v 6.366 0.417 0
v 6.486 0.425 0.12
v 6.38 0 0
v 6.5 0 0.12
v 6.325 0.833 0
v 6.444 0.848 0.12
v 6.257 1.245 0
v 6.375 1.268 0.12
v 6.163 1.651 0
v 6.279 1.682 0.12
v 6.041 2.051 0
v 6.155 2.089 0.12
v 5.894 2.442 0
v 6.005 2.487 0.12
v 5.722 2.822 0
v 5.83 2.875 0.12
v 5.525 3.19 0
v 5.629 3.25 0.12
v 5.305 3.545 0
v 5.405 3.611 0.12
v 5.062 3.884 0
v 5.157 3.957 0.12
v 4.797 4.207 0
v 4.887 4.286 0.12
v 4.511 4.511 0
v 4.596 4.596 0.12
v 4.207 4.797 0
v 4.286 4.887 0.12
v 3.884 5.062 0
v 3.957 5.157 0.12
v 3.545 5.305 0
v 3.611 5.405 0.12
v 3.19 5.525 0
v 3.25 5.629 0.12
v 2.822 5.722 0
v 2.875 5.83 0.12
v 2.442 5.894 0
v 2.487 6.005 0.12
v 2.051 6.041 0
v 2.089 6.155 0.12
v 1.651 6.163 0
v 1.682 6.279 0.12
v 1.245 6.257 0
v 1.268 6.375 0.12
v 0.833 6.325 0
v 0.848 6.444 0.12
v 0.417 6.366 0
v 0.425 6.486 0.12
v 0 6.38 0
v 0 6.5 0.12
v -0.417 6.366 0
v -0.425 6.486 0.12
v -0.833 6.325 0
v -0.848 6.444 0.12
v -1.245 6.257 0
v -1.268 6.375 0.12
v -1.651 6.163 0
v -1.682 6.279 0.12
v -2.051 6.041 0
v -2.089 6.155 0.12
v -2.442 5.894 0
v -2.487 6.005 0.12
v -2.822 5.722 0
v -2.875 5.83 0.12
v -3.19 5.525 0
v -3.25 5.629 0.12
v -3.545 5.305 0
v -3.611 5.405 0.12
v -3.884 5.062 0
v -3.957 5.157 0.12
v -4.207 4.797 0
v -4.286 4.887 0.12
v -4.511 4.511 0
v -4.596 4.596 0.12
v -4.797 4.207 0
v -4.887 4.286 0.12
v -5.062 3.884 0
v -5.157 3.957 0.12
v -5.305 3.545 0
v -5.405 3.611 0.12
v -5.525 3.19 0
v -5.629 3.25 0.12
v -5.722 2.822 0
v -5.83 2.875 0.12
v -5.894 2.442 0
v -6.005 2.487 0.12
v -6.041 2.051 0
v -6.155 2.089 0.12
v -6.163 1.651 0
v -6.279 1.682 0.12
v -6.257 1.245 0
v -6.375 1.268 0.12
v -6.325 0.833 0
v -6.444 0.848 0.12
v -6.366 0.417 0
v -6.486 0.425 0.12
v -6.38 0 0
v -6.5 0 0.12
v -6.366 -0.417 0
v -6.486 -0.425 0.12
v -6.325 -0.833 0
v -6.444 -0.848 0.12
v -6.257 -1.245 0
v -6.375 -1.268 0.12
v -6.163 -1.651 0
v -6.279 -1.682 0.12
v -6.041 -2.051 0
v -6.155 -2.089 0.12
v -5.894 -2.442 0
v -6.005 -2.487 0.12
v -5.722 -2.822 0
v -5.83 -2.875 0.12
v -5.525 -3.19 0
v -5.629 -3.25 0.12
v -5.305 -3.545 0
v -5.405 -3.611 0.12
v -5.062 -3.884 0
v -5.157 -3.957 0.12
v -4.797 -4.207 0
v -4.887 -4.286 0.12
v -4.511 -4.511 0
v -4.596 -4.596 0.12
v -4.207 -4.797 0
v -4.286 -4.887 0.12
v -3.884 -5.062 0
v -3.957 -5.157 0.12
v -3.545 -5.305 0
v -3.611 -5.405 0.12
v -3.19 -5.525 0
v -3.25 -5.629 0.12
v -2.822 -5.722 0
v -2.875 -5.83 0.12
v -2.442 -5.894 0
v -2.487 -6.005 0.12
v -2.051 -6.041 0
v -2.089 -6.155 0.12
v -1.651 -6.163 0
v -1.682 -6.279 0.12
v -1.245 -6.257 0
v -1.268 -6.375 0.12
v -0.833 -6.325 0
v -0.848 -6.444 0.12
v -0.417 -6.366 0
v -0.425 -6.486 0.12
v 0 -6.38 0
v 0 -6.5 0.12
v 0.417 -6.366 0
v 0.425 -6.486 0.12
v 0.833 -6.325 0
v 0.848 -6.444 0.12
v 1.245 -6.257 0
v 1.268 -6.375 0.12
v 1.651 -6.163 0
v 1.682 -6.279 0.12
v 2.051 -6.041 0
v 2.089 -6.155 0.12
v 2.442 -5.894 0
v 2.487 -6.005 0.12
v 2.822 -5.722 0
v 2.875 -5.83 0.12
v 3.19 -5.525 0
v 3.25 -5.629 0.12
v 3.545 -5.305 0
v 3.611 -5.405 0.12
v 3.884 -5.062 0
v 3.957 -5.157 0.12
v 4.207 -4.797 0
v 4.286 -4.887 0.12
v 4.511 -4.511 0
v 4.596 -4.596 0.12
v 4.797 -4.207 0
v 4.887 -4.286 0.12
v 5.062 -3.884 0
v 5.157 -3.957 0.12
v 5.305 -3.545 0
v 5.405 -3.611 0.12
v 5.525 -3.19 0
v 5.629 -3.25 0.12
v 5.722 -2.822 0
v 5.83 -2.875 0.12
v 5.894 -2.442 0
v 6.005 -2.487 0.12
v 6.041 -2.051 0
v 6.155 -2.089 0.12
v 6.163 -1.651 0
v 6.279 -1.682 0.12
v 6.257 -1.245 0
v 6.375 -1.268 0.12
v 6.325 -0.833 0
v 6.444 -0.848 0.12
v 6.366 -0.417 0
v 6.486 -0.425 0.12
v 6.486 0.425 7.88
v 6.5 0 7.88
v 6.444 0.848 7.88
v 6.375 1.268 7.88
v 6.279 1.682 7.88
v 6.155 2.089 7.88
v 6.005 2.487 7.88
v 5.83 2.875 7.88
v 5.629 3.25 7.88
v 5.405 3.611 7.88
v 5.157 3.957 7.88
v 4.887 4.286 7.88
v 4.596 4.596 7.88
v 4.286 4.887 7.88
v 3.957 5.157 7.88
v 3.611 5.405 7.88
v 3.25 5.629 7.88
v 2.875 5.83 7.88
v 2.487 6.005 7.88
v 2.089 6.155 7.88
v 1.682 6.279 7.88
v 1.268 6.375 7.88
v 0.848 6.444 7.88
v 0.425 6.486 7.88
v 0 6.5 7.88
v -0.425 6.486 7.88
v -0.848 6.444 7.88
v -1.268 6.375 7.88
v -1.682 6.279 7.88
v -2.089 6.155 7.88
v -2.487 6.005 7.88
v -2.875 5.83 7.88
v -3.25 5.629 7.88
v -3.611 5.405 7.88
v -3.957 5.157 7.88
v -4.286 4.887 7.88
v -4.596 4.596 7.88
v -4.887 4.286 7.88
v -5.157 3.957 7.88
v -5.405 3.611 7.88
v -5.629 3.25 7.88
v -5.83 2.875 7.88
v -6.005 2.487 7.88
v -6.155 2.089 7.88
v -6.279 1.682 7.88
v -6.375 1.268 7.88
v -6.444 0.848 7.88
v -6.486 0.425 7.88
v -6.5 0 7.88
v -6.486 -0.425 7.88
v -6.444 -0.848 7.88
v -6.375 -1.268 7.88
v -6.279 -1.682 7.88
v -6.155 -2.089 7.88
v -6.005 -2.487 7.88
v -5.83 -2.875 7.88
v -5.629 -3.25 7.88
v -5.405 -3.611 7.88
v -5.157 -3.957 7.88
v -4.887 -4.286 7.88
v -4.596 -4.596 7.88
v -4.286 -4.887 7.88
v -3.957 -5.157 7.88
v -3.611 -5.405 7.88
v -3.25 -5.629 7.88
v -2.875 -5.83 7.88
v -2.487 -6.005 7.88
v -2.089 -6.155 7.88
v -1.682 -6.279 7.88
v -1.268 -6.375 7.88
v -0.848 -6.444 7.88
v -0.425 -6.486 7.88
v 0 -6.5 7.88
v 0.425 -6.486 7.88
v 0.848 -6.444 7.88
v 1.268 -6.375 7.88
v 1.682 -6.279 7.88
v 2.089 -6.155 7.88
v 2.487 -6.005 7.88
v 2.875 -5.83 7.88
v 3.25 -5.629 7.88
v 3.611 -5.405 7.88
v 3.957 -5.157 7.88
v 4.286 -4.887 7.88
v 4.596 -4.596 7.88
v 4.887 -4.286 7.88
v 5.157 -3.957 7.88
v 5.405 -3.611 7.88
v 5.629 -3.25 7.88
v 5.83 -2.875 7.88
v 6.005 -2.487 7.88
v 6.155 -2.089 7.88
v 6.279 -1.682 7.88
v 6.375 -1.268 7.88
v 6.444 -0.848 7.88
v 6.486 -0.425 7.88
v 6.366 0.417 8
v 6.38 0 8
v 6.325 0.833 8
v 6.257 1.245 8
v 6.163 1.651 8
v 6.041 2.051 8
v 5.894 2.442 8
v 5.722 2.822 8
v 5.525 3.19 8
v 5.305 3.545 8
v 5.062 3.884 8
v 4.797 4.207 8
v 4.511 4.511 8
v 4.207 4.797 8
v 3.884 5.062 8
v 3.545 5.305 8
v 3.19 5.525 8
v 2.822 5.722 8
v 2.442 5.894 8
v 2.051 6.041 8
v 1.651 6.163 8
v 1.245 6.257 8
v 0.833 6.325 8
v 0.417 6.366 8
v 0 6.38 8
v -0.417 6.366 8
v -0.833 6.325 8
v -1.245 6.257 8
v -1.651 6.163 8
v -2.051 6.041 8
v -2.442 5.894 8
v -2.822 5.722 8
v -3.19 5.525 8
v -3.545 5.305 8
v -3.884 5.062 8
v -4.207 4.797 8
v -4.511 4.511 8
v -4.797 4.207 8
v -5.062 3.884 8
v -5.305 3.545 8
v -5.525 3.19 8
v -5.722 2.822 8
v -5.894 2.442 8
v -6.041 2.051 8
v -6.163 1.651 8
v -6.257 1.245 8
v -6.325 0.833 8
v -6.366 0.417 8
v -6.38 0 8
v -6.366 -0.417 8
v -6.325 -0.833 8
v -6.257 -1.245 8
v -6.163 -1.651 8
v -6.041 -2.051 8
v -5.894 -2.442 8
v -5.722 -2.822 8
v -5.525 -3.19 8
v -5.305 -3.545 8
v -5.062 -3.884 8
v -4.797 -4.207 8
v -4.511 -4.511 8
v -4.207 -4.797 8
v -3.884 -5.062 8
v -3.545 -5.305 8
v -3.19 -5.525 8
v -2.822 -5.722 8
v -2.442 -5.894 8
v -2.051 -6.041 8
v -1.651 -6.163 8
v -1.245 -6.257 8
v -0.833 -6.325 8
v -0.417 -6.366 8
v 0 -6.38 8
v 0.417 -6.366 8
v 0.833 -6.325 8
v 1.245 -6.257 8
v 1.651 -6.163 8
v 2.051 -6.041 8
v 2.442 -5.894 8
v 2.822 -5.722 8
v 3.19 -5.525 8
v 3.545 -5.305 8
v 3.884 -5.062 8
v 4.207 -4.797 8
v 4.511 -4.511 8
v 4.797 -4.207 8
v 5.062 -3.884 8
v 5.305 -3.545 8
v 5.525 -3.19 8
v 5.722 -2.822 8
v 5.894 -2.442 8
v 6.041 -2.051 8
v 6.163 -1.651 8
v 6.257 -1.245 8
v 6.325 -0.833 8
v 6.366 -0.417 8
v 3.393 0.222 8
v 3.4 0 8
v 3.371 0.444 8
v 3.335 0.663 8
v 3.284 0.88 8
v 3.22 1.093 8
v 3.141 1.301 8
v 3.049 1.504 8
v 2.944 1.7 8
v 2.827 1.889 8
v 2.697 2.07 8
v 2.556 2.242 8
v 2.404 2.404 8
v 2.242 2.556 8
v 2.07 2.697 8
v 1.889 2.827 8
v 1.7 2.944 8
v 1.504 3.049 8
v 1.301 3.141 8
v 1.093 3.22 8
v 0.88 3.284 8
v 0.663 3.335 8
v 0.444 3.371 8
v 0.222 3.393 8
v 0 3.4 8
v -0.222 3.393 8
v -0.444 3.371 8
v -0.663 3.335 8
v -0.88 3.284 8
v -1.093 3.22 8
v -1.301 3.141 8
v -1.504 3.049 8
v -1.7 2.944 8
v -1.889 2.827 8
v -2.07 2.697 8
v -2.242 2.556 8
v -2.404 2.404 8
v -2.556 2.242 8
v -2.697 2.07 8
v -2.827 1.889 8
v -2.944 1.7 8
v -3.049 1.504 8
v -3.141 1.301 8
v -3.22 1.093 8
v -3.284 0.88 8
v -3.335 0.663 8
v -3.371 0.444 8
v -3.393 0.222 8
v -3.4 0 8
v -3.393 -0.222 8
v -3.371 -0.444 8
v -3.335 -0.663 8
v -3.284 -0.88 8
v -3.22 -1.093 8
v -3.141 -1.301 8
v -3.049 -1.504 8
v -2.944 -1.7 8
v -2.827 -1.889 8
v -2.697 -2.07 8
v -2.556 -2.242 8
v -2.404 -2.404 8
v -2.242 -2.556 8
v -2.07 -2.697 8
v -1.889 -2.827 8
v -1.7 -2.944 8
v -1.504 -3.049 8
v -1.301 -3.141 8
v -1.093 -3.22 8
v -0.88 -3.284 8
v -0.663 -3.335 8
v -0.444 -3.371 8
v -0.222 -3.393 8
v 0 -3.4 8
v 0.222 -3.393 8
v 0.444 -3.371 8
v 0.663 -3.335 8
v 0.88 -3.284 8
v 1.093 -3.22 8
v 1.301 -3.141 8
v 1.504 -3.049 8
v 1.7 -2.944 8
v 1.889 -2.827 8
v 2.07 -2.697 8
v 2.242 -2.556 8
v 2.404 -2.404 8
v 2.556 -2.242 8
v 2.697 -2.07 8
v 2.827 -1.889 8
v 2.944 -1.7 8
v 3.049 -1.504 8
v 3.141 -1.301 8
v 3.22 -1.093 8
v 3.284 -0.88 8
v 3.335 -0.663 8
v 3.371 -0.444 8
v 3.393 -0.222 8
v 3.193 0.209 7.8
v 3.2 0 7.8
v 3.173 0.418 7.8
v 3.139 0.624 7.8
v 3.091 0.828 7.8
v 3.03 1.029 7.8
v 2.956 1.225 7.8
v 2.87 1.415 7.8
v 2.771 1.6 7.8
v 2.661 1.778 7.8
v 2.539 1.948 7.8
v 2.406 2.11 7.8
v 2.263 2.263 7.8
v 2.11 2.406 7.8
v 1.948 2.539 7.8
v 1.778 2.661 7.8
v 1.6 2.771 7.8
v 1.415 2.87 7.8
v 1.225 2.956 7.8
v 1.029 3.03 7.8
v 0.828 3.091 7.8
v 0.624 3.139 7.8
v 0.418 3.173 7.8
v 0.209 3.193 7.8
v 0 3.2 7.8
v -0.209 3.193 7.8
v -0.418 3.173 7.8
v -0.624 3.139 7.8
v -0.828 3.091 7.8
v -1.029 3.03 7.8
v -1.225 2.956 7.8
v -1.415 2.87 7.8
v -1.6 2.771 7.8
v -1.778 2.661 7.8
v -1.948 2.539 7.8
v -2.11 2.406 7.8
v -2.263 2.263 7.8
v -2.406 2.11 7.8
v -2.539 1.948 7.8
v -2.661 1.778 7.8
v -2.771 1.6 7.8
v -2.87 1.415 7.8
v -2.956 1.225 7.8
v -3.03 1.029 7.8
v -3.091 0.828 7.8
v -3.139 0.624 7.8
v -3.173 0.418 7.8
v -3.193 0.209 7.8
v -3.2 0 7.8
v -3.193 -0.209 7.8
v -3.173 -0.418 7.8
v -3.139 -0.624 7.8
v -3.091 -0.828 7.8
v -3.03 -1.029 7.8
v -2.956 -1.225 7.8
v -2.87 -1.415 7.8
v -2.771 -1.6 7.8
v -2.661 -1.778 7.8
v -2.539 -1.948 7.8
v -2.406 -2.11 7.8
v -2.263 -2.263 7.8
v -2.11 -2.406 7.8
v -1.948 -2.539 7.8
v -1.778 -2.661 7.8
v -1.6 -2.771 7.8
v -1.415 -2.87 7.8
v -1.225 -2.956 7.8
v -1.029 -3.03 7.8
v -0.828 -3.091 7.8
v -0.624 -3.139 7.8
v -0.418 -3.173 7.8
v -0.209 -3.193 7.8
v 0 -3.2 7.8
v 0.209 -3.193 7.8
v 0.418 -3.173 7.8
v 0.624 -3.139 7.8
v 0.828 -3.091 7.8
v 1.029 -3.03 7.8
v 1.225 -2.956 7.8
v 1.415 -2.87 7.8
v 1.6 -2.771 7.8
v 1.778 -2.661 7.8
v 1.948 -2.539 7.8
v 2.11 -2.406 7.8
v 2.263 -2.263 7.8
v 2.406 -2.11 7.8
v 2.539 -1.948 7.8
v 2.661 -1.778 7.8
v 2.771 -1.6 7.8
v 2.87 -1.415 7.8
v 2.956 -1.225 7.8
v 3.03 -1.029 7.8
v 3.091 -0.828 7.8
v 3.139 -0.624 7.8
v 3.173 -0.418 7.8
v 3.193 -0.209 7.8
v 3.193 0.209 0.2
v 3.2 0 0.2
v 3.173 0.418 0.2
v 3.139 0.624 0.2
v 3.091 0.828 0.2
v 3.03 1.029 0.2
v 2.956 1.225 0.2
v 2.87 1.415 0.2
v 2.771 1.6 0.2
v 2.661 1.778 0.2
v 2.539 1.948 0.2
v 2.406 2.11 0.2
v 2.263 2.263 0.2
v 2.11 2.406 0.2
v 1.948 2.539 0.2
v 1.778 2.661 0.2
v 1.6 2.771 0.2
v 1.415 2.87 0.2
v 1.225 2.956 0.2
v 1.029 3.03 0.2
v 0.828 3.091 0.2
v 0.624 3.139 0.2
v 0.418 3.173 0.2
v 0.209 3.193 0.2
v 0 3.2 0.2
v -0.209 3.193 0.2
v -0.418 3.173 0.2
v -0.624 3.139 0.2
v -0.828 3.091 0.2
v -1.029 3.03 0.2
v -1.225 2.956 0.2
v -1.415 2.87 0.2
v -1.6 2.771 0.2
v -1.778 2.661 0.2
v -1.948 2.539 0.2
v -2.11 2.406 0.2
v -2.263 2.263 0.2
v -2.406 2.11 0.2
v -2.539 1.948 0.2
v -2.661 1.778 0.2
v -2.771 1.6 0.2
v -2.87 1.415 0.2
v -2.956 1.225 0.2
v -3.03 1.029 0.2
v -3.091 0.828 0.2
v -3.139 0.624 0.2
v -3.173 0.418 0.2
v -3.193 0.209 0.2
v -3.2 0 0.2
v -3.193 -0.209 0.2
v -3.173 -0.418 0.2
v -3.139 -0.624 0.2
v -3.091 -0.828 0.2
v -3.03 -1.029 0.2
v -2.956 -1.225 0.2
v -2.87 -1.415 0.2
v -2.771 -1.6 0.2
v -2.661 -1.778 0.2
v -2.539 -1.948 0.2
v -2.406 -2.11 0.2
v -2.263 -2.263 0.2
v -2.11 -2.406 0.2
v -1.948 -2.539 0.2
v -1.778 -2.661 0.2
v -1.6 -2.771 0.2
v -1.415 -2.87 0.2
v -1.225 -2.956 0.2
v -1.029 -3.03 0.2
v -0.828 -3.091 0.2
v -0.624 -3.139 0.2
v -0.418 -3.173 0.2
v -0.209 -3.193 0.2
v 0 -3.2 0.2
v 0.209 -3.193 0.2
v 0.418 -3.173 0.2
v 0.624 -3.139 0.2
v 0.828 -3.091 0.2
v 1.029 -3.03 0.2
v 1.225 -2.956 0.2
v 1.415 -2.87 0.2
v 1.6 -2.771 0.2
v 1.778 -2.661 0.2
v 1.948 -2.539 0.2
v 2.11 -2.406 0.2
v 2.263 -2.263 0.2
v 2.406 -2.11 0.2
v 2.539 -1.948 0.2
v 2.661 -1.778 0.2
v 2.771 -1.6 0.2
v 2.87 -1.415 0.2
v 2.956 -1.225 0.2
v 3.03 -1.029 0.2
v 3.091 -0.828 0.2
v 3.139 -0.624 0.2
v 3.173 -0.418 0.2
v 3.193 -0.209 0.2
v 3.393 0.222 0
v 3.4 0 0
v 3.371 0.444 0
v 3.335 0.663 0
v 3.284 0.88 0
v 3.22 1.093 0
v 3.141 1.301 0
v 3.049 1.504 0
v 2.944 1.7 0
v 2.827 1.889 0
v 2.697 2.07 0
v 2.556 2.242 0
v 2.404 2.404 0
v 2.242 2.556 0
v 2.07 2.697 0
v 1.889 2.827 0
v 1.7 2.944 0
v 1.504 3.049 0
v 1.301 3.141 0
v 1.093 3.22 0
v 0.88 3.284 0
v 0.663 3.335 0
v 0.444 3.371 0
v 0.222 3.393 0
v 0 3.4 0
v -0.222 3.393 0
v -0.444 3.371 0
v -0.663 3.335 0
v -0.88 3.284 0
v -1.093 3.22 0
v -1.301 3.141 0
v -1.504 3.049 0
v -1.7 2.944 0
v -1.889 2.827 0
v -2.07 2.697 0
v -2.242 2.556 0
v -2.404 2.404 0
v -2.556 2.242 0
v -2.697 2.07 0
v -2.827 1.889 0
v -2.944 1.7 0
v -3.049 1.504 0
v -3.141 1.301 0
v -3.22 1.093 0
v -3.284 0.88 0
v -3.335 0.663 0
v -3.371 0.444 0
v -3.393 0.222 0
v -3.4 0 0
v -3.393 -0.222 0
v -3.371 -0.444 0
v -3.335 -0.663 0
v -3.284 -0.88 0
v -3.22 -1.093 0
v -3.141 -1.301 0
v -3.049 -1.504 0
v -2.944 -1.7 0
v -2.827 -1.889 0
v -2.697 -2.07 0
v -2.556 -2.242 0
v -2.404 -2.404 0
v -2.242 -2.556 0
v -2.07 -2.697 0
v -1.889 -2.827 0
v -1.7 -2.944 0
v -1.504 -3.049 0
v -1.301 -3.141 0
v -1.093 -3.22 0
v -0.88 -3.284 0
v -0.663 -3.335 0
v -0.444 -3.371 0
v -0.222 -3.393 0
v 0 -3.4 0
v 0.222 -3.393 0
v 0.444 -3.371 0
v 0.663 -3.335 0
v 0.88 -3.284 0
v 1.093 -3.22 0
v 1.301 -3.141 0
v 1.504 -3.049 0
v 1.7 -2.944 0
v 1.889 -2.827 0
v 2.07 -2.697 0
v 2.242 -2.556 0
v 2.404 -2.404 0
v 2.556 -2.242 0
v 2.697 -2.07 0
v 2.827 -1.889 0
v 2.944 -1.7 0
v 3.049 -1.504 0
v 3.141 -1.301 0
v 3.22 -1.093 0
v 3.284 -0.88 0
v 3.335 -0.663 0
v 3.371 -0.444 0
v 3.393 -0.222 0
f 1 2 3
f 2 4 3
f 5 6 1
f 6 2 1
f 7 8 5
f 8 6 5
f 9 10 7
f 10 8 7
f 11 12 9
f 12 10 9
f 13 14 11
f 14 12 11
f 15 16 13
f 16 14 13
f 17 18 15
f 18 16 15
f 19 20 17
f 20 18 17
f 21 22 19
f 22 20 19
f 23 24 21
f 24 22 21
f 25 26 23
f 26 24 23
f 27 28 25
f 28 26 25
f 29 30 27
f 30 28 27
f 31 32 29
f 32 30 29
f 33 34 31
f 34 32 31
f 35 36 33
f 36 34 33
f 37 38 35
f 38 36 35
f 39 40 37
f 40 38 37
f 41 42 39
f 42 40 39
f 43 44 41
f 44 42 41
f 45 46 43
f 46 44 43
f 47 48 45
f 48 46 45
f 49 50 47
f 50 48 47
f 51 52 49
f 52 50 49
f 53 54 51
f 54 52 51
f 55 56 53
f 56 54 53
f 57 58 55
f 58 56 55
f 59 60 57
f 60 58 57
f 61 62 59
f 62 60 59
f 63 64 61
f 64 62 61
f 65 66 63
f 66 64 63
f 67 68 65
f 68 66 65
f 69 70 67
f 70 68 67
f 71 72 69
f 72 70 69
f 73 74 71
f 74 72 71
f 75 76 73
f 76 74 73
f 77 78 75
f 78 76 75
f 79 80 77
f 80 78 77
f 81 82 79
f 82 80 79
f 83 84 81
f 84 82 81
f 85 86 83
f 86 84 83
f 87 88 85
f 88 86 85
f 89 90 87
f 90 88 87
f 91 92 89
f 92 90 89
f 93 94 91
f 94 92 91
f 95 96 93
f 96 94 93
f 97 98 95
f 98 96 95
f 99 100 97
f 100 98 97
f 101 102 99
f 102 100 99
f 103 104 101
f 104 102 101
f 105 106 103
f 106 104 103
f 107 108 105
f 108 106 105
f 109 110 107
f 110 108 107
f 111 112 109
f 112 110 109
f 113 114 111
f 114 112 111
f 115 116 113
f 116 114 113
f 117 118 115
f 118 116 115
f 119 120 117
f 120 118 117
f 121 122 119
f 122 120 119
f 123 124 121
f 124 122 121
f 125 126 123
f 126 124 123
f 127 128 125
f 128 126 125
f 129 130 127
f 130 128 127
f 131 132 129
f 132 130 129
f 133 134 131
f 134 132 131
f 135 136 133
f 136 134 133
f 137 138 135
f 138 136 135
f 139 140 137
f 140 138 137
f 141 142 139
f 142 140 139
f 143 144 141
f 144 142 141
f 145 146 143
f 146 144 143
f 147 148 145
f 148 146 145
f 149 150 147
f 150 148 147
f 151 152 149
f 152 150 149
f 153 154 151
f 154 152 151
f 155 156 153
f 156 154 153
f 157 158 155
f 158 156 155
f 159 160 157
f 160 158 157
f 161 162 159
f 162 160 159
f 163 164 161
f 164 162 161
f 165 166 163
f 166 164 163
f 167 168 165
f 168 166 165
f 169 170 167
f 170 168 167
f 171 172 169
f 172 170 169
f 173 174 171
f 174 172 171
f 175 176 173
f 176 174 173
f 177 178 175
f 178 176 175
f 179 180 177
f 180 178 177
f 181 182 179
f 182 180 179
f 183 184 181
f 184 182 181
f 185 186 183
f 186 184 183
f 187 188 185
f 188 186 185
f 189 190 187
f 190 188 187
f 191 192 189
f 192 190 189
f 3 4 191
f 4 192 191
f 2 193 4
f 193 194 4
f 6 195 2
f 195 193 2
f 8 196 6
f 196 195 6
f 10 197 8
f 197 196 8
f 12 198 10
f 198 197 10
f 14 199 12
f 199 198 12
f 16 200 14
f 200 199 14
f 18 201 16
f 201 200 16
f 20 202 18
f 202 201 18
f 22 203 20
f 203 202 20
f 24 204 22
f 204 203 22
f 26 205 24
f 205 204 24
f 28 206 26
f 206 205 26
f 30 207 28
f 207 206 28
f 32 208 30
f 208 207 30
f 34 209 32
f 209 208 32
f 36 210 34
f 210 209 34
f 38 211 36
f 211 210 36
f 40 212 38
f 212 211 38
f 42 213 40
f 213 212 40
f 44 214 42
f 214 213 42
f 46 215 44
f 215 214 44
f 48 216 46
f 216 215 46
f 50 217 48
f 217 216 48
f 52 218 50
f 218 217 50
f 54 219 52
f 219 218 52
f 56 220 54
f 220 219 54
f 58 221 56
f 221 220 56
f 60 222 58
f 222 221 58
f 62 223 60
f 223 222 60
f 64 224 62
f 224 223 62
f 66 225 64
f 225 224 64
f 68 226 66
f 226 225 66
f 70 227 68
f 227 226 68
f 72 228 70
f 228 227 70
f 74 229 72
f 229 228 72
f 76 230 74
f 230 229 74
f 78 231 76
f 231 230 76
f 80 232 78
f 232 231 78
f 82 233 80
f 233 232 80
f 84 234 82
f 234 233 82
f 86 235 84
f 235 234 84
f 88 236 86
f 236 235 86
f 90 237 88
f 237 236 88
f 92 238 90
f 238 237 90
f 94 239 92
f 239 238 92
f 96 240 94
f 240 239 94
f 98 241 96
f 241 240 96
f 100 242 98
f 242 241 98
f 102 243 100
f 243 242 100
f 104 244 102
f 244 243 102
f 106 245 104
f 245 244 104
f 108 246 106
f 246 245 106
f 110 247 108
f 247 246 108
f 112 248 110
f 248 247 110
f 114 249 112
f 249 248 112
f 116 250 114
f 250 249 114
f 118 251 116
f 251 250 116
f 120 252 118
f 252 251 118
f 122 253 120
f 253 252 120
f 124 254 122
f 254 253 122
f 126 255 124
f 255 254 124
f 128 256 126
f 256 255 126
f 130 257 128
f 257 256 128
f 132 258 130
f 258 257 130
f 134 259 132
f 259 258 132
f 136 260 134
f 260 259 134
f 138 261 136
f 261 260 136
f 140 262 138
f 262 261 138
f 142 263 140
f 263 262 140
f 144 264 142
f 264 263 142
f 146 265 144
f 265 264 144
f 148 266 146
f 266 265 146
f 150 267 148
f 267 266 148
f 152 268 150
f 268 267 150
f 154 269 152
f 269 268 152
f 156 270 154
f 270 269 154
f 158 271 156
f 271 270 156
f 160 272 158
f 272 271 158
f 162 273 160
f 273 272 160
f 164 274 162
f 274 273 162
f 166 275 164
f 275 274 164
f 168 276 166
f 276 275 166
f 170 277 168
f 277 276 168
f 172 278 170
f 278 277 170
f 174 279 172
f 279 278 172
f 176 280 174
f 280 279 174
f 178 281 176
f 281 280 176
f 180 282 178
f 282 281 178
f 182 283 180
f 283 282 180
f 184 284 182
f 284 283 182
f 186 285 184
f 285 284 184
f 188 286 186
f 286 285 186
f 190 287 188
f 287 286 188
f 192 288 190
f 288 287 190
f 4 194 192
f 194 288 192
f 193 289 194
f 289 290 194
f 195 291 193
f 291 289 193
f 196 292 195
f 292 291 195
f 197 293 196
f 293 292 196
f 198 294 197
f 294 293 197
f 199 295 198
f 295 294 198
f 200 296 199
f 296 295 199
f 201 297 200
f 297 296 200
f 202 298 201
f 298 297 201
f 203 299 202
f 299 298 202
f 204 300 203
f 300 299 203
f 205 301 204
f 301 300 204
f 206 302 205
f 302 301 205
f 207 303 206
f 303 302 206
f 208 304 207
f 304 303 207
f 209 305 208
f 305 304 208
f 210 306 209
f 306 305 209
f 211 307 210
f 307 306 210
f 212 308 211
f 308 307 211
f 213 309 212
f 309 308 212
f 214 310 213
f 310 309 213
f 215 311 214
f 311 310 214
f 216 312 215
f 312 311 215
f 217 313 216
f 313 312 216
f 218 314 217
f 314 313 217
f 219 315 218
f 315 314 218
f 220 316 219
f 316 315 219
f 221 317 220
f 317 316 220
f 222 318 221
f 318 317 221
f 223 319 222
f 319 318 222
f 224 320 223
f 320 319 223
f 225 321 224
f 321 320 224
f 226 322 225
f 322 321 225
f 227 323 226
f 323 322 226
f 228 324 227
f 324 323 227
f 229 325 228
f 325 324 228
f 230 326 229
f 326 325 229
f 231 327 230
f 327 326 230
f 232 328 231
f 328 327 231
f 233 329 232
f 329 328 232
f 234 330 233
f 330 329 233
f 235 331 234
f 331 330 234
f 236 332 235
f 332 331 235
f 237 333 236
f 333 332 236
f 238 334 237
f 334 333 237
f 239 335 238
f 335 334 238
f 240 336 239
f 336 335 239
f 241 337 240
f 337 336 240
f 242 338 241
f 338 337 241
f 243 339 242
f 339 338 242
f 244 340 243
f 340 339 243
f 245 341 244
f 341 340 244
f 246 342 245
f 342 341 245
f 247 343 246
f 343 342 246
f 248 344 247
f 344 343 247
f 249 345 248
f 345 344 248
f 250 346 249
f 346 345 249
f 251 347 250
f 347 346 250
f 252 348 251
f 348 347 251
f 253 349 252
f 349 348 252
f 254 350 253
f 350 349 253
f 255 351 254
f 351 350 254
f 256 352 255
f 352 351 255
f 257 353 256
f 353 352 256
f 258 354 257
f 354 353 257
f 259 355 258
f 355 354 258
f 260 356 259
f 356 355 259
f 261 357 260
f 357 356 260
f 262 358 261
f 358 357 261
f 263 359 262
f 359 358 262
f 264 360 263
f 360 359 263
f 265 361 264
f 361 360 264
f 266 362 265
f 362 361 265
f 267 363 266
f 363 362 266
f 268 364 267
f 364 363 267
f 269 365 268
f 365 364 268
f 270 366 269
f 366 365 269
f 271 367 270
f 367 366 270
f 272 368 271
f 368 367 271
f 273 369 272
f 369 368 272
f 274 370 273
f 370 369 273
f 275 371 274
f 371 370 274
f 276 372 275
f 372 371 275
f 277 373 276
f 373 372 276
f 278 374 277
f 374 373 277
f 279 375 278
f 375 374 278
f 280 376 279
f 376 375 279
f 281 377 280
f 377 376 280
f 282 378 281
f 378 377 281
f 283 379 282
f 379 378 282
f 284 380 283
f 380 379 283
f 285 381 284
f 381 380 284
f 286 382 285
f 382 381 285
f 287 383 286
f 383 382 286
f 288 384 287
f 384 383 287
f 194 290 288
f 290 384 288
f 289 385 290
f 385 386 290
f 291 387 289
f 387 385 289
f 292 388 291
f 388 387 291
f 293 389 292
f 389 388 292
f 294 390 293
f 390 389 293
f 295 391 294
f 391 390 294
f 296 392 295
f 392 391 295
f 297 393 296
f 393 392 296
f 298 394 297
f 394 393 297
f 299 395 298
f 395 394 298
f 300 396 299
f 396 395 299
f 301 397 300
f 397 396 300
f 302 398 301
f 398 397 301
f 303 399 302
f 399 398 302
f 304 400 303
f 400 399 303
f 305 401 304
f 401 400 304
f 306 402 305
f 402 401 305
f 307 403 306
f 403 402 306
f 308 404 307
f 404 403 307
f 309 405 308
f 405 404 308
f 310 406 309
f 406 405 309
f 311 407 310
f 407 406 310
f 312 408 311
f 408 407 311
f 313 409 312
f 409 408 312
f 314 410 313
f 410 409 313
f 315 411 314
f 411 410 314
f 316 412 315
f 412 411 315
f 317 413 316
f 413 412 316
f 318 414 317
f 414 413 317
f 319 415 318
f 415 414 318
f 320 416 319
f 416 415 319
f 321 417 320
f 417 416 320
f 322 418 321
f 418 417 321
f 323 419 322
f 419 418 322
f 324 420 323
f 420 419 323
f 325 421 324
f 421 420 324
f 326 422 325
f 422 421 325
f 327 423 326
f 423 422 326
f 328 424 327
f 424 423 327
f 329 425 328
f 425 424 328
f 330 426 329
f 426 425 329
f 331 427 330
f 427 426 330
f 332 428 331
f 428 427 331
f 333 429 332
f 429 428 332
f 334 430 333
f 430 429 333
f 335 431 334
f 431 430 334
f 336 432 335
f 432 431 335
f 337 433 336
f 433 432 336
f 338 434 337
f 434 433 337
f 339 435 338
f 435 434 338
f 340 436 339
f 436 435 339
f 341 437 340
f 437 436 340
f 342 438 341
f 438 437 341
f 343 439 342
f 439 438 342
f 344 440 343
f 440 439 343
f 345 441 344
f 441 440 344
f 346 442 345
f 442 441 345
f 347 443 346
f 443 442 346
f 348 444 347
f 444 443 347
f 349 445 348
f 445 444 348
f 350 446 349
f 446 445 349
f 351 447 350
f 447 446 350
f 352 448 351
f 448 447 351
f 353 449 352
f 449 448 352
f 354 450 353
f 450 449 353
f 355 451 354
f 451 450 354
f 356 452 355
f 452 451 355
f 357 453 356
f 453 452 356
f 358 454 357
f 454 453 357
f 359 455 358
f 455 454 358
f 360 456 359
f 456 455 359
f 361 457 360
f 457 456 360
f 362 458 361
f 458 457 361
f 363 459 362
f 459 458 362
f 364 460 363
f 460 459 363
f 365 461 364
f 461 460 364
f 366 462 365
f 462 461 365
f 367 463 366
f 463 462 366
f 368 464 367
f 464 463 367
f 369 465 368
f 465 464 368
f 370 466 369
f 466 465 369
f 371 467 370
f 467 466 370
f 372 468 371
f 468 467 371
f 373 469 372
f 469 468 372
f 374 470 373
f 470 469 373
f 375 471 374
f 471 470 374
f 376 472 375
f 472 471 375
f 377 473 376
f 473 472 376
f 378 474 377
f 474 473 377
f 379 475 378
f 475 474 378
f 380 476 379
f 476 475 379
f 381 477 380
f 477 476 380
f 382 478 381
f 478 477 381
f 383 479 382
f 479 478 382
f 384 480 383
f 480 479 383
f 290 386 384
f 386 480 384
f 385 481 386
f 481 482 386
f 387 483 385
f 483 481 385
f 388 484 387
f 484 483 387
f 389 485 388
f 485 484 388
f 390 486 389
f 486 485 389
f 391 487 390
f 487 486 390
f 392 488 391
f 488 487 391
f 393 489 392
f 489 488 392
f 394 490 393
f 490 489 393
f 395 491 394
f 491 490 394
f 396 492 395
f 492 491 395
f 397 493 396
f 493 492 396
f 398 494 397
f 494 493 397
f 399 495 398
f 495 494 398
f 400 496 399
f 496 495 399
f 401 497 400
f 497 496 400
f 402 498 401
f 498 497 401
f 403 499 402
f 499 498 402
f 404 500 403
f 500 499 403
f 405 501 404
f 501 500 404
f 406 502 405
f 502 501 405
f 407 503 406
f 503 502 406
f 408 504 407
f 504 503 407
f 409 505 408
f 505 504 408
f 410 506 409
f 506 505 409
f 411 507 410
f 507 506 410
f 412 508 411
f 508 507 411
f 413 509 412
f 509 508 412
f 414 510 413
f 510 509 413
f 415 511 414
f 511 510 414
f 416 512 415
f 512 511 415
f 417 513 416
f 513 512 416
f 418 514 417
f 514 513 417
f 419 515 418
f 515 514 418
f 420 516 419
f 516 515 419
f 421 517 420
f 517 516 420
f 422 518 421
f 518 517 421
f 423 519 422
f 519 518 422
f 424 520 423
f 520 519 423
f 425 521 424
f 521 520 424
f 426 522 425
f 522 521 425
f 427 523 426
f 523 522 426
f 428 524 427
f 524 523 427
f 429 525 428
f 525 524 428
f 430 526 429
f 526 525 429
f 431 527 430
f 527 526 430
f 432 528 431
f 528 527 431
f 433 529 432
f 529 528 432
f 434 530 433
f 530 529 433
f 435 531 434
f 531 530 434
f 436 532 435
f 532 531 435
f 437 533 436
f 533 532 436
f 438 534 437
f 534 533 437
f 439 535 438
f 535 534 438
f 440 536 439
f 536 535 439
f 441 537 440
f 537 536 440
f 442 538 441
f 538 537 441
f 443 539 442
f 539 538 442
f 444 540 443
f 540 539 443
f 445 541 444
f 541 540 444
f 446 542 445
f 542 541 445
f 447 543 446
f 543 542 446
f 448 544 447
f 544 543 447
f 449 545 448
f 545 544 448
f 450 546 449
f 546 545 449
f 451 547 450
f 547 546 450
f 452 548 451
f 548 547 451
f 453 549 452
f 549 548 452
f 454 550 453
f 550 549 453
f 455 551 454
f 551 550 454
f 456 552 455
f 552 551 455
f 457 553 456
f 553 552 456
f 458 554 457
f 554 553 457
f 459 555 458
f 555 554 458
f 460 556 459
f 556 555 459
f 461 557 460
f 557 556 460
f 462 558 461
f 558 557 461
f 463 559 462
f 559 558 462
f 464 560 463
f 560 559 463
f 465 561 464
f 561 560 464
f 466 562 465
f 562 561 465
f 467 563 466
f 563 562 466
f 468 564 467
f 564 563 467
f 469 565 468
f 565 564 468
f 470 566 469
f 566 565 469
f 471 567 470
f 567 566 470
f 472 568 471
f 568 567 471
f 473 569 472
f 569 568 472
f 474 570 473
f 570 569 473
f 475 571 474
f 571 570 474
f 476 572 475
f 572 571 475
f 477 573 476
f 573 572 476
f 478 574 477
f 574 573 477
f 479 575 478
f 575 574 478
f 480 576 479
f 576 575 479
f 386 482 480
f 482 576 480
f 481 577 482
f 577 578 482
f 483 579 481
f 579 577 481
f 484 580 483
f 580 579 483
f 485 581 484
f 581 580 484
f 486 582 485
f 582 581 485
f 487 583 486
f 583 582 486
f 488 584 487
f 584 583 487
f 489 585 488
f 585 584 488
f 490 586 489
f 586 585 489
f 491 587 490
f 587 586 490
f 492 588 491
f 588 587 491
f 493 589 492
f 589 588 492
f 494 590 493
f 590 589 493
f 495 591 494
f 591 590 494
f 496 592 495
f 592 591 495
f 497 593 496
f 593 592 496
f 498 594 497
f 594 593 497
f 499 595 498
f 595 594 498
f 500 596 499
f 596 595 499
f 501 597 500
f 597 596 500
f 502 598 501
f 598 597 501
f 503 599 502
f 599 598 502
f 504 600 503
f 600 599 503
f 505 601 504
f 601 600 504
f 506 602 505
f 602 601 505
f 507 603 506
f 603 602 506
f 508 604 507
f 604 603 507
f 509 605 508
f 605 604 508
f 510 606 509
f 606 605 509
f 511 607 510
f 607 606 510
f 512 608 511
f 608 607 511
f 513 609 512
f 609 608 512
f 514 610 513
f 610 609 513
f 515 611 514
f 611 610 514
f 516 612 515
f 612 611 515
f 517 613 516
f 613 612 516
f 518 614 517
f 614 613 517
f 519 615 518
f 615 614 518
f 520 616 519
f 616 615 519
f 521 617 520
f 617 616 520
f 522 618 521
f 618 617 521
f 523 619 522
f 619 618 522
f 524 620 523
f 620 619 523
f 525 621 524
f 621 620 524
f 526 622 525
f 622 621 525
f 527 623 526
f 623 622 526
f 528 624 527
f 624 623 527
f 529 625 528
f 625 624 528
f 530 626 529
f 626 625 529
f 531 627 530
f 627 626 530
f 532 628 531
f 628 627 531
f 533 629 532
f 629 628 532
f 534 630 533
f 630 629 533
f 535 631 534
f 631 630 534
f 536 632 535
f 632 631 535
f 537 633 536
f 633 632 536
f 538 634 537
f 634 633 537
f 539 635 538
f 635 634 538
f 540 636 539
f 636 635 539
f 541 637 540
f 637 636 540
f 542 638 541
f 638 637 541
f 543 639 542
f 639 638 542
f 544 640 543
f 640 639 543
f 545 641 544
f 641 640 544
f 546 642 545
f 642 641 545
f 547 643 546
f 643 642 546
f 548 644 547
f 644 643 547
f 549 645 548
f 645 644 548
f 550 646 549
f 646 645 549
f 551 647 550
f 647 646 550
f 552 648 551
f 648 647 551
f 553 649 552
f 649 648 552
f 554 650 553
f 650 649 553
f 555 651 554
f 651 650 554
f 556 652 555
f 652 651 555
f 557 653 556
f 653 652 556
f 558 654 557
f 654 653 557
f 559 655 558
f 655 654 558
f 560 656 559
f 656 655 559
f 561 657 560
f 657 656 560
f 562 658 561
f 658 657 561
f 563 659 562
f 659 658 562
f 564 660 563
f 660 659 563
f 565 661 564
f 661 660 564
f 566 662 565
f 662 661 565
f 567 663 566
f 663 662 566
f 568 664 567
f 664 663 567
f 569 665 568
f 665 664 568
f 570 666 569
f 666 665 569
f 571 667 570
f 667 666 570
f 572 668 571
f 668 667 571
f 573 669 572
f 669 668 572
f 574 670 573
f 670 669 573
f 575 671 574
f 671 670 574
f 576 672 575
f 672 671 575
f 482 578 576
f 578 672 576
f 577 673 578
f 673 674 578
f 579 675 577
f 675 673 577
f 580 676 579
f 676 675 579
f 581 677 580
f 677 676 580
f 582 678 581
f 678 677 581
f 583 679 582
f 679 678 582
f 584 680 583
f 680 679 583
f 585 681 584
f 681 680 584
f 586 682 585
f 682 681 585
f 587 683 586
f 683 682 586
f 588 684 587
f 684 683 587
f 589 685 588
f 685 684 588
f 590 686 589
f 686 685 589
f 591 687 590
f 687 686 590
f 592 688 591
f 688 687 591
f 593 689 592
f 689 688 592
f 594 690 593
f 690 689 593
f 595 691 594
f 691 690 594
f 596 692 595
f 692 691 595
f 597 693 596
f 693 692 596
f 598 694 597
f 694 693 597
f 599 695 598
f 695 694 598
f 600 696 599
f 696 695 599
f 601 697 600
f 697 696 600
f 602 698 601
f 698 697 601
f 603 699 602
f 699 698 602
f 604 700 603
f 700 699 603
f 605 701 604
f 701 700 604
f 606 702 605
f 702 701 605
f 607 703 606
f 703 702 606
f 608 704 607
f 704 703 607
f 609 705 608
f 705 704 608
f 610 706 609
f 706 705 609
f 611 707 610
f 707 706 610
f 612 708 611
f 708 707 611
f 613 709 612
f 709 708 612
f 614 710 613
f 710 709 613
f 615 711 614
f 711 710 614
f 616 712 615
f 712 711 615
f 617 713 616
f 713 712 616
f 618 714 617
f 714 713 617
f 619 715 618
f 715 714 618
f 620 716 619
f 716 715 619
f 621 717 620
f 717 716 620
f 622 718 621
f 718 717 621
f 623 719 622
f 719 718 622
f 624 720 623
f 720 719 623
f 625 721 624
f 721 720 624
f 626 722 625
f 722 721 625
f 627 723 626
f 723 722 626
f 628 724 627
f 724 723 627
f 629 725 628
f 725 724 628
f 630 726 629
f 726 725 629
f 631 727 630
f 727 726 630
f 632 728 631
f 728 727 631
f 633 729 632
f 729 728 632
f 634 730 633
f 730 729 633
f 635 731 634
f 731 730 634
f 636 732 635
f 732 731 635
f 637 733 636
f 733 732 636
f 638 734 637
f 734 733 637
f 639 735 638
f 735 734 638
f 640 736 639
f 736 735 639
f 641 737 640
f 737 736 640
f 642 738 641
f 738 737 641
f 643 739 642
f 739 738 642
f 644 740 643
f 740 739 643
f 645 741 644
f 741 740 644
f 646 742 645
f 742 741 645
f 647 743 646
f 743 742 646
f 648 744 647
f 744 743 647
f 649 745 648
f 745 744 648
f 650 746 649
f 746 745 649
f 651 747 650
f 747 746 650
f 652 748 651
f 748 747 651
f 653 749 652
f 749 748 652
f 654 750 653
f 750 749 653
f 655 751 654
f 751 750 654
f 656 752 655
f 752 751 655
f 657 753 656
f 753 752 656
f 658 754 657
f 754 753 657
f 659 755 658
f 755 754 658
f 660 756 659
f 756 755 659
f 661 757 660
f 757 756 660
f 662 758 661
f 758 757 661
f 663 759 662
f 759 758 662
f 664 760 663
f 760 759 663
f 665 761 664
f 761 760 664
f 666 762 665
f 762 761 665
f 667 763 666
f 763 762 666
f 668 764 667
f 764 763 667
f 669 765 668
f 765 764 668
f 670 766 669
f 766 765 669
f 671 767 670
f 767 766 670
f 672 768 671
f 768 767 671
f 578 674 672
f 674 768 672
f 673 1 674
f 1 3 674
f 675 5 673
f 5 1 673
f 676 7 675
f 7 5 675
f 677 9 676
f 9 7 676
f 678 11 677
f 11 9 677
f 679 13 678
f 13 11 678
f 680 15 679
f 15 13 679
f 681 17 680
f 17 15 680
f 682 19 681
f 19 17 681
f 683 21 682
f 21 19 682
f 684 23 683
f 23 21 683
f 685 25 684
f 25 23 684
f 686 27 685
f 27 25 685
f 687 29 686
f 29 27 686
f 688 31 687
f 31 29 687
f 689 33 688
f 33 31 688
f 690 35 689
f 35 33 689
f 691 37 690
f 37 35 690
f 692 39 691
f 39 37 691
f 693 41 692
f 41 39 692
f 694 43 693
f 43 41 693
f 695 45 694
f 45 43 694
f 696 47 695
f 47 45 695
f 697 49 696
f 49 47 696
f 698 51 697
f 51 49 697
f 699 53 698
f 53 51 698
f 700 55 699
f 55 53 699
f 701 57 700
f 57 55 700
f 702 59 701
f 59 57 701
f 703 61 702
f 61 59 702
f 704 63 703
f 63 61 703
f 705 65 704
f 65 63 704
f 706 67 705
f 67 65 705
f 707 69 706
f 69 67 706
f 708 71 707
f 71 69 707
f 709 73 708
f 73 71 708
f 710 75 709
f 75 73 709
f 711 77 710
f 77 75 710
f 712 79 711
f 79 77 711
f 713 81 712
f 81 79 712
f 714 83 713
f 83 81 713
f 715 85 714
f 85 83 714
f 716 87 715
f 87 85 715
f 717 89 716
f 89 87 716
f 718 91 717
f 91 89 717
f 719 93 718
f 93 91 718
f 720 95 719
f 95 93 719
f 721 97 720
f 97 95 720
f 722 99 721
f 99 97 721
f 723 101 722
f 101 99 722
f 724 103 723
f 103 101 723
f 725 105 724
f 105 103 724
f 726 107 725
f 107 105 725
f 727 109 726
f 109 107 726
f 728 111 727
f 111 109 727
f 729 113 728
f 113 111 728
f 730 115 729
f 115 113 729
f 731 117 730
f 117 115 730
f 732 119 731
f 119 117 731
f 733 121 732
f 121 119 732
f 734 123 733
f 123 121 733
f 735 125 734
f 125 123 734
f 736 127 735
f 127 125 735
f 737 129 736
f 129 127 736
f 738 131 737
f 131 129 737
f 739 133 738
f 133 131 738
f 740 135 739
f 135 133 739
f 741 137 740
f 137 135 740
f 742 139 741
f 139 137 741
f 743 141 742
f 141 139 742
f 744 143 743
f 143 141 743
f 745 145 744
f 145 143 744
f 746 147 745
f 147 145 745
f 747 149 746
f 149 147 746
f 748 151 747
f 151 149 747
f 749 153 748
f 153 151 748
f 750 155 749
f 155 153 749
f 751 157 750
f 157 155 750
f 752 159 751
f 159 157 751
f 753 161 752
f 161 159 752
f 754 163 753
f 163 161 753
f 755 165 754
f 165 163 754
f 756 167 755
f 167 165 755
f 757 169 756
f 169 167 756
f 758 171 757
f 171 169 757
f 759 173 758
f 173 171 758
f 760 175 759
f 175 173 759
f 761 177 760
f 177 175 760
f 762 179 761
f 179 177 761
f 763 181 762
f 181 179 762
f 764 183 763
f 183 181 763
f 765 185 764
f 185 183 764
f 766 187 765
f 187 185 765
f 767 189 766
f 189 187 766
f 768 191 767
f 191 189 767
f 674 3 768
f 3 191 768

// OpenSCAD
// OOMP generic catalogue model; units: mm.
// Stud length is additional to body depth. Tapping depths are model assumptions.
variant = "full"; // [full, display]
family = "spacer";
connection_type = "plain";
depth_mm = 8;
stud_length_mm = 0;
tapped_depth_mm = 0;
bore_mm = 6.4;
outer_diameter_mm = 13;
across_flats_mm = 6;
thread_nominal_diameter_mm = 3;
thread_pitch_mm = 0.5;
edge_chamfer_mm = 0.12;
mouth_chamfer_mm = 0.2;
angular_segments = 96;
samples_per_pitch = 16;

// Boundary travels up the outside, then down any tapped/plain bore.
// Equal-height rings at shoulders form the annular shoulder faces.
n = angular_segments;
threaded = family == "standoff";
has_stud = connection_type == "stud_to_tapped" || connection_type == "stud_to_stud";
two_studs = connection_type == "stud_to_stud";
through = !threaded || connection_type == "tapped_to_tapped";
pitch = thread_pitch_mm;
diameter = threaded ? thread_nominal_diameter_mm : bore_mm;
minor = diameter - 5*sqrt(3)*pitch/8;
transition = mouth_chamfer_mm + (threaded ? 5*sqrt(3)*pitch/16 : 0);
tip_chamfer = mouth_chamfer_mm + 17*sqrt(3)*pitch/48;
function sorted(v) = len(v)<=1 ? v : let(p=v[0])
    concat(sorted([for(x=v) if(x<p-1e-8) x]), [p], sorted([for(x=v) if(x>p+1e-8) x]));
function reverse(v) = [for(i=[len(v)-1:-1:0]) v[i]];
function theta(i) = i*360/n;
function fract(x) = x-floor(x);
function phase_distance(i,z) = abs(fract(z/pitch-theta(i)/360+0.5)-0.5);
function thread_r(i,z) = minor/2 + min(5*sqrt(3)*pitch/16,
    max(0,(phase_distance(i,z)-0.125)*pitch*sqrt(3)));
function stud_r(i,z,tip) = min(diameter/2 - (variant=="full" ?
    min(17*sqrt(3)*pitch/48,max(0,(phase_distance(i,z)-0.0625)*pitch*sqrt(3))) : 0),
    diameter/2-tip_chamfer+abs(z-tip));
function body_r(i,z) = (threaded ? across_flats_mm/2/cos(theta(i)%60-30) : outer_diameter_mm/2)
    - max(0,edge_chamfer_mm-min(z,depth_mm-z));
function bore_r(i,z) = max(threaded ? (variant=="full" ? thread_r(i,z) : minor/2) : diameter/2,
    diameter/2+mouth_chamfer_mm-(through ? min(z,depth_mm-z) : depth_mm-z));
function stud_z(a,b,tip) = let(count=variant=="full" ? ceil(stud_length_mm/pitch*samples_per_pitch) : 1)
    sorted(concat([for(i=[0:count]) a+(b-a)*i/count], [tip==a ? tip+tip_chamfer : tip-tip_chamfer]));
body_z = sorted([0,edge_chamfer_mm,depth_mm-edge_chamfer_mm,depth_mm]);
low = through ? 0 : depth_mm-tapped_depth_mm;
count = threaded && variant=="full" ? ceil((depth_mm-low)/pitch*samples_per_pitch) : 1;
bore_z = two_studs ? [] : reverse(sorted(concat(
    [for(i=[0:count]) low+(depth_mm-low)*i/count],
    [depth_mm-mouth_chamfer_mm,depth_mm-transition],
    through ? [mouth_chamfer_mm,transition] : [])));
// Ring descriptors: [height, kind, tip]. Kind: 0 body, 1 stud, 2 bore.
rings = concat(
    has_stud ? [for(z=stud_z(-stud_length_mm,0,-stud_length_mm)) [z,1,-stud_length_mm]] : [],
    [for(z=body_z) [z,0,0]],
    two_studs ? [for(z=stud_z(depth_mm,depth_mm+stud_length_mm,depth_mm+stud_length_mm)) [z,1,depth_mm+stud_length_mm]] : [],
    [for(z=bore_z) [z,2,0]]);
function radius(i,ring) = ring[1]==0 ? body_r(i,ring[0]) :
    ring[1]==1 ? stud_r(i,ring[0],ring[2]) : bore_r(i,ring[0]);
points = concat([for(ring=rings) for(i=[0:n-1])
    [radius(i,ring)*cos(theta(i)),radius(i,ring)*sin(theta(i)),ring[0]]],
    through ? [] : [[0,0,rings[0][0]],[0,0,rings[len(rings)-1][0]]]);
center = len(rings)*n;
last = (len(rings)-1)*n;
// OpenSCAD winding is opposite to STL winding.
faces = concat(
    [for(j=[0:len(rings)-(through ? 1 : 2)]) for(i=[0:n-1]) each
        let(a=j*n+i,b=j*n+(i+1)%n,c=((j+1)%len(rings))*n+(i+1)%n,d=((j+1)%len(rings))*n+i)
        [[a,c,b],[a,d,c]]],
    through ? [] : [for(i=[0:n-1]) each let(k=(i+1)%n)
        [[center,i,k],[center+1,last+k,last+i]]]);
assert(family=="spacer" || family=="standoff");
assert(!threaded || connection_type=="tapped_to_tapped" || has_stud);
assert(depth_mm>0 && diameter>0 && pitch>0);
assert(variant=="full" || variant=="display");
assert(n>=24 && n%12==0 && samples_per_pitch>=8);
assert(mouth_chamfer_mm>0 && mouth_chamfer_mm<depth_mm/2);
assert(edge_chamfer_mm>=0 && edge_chamfer_mm<depth_mm/2);
assert(diameter+4*max(mouth_chamfer_mm,edge_chamfer_mm) < (threaded ? across_flats_mm : outer_diameter_mm));
assert(!has_stud || stud_length_mm>2*mouth_chamfer_mm);
assert(!through || !threaded || 2*transition<depth_mm);
assert(connection_type!="stud_to_tapped" || (tapped_depth_mm>transition && tapped_depth_mm<depth_mm));
color([0.86,0.85,0.81]) polyhedron(points=points,faces=faces,convexity=20);
